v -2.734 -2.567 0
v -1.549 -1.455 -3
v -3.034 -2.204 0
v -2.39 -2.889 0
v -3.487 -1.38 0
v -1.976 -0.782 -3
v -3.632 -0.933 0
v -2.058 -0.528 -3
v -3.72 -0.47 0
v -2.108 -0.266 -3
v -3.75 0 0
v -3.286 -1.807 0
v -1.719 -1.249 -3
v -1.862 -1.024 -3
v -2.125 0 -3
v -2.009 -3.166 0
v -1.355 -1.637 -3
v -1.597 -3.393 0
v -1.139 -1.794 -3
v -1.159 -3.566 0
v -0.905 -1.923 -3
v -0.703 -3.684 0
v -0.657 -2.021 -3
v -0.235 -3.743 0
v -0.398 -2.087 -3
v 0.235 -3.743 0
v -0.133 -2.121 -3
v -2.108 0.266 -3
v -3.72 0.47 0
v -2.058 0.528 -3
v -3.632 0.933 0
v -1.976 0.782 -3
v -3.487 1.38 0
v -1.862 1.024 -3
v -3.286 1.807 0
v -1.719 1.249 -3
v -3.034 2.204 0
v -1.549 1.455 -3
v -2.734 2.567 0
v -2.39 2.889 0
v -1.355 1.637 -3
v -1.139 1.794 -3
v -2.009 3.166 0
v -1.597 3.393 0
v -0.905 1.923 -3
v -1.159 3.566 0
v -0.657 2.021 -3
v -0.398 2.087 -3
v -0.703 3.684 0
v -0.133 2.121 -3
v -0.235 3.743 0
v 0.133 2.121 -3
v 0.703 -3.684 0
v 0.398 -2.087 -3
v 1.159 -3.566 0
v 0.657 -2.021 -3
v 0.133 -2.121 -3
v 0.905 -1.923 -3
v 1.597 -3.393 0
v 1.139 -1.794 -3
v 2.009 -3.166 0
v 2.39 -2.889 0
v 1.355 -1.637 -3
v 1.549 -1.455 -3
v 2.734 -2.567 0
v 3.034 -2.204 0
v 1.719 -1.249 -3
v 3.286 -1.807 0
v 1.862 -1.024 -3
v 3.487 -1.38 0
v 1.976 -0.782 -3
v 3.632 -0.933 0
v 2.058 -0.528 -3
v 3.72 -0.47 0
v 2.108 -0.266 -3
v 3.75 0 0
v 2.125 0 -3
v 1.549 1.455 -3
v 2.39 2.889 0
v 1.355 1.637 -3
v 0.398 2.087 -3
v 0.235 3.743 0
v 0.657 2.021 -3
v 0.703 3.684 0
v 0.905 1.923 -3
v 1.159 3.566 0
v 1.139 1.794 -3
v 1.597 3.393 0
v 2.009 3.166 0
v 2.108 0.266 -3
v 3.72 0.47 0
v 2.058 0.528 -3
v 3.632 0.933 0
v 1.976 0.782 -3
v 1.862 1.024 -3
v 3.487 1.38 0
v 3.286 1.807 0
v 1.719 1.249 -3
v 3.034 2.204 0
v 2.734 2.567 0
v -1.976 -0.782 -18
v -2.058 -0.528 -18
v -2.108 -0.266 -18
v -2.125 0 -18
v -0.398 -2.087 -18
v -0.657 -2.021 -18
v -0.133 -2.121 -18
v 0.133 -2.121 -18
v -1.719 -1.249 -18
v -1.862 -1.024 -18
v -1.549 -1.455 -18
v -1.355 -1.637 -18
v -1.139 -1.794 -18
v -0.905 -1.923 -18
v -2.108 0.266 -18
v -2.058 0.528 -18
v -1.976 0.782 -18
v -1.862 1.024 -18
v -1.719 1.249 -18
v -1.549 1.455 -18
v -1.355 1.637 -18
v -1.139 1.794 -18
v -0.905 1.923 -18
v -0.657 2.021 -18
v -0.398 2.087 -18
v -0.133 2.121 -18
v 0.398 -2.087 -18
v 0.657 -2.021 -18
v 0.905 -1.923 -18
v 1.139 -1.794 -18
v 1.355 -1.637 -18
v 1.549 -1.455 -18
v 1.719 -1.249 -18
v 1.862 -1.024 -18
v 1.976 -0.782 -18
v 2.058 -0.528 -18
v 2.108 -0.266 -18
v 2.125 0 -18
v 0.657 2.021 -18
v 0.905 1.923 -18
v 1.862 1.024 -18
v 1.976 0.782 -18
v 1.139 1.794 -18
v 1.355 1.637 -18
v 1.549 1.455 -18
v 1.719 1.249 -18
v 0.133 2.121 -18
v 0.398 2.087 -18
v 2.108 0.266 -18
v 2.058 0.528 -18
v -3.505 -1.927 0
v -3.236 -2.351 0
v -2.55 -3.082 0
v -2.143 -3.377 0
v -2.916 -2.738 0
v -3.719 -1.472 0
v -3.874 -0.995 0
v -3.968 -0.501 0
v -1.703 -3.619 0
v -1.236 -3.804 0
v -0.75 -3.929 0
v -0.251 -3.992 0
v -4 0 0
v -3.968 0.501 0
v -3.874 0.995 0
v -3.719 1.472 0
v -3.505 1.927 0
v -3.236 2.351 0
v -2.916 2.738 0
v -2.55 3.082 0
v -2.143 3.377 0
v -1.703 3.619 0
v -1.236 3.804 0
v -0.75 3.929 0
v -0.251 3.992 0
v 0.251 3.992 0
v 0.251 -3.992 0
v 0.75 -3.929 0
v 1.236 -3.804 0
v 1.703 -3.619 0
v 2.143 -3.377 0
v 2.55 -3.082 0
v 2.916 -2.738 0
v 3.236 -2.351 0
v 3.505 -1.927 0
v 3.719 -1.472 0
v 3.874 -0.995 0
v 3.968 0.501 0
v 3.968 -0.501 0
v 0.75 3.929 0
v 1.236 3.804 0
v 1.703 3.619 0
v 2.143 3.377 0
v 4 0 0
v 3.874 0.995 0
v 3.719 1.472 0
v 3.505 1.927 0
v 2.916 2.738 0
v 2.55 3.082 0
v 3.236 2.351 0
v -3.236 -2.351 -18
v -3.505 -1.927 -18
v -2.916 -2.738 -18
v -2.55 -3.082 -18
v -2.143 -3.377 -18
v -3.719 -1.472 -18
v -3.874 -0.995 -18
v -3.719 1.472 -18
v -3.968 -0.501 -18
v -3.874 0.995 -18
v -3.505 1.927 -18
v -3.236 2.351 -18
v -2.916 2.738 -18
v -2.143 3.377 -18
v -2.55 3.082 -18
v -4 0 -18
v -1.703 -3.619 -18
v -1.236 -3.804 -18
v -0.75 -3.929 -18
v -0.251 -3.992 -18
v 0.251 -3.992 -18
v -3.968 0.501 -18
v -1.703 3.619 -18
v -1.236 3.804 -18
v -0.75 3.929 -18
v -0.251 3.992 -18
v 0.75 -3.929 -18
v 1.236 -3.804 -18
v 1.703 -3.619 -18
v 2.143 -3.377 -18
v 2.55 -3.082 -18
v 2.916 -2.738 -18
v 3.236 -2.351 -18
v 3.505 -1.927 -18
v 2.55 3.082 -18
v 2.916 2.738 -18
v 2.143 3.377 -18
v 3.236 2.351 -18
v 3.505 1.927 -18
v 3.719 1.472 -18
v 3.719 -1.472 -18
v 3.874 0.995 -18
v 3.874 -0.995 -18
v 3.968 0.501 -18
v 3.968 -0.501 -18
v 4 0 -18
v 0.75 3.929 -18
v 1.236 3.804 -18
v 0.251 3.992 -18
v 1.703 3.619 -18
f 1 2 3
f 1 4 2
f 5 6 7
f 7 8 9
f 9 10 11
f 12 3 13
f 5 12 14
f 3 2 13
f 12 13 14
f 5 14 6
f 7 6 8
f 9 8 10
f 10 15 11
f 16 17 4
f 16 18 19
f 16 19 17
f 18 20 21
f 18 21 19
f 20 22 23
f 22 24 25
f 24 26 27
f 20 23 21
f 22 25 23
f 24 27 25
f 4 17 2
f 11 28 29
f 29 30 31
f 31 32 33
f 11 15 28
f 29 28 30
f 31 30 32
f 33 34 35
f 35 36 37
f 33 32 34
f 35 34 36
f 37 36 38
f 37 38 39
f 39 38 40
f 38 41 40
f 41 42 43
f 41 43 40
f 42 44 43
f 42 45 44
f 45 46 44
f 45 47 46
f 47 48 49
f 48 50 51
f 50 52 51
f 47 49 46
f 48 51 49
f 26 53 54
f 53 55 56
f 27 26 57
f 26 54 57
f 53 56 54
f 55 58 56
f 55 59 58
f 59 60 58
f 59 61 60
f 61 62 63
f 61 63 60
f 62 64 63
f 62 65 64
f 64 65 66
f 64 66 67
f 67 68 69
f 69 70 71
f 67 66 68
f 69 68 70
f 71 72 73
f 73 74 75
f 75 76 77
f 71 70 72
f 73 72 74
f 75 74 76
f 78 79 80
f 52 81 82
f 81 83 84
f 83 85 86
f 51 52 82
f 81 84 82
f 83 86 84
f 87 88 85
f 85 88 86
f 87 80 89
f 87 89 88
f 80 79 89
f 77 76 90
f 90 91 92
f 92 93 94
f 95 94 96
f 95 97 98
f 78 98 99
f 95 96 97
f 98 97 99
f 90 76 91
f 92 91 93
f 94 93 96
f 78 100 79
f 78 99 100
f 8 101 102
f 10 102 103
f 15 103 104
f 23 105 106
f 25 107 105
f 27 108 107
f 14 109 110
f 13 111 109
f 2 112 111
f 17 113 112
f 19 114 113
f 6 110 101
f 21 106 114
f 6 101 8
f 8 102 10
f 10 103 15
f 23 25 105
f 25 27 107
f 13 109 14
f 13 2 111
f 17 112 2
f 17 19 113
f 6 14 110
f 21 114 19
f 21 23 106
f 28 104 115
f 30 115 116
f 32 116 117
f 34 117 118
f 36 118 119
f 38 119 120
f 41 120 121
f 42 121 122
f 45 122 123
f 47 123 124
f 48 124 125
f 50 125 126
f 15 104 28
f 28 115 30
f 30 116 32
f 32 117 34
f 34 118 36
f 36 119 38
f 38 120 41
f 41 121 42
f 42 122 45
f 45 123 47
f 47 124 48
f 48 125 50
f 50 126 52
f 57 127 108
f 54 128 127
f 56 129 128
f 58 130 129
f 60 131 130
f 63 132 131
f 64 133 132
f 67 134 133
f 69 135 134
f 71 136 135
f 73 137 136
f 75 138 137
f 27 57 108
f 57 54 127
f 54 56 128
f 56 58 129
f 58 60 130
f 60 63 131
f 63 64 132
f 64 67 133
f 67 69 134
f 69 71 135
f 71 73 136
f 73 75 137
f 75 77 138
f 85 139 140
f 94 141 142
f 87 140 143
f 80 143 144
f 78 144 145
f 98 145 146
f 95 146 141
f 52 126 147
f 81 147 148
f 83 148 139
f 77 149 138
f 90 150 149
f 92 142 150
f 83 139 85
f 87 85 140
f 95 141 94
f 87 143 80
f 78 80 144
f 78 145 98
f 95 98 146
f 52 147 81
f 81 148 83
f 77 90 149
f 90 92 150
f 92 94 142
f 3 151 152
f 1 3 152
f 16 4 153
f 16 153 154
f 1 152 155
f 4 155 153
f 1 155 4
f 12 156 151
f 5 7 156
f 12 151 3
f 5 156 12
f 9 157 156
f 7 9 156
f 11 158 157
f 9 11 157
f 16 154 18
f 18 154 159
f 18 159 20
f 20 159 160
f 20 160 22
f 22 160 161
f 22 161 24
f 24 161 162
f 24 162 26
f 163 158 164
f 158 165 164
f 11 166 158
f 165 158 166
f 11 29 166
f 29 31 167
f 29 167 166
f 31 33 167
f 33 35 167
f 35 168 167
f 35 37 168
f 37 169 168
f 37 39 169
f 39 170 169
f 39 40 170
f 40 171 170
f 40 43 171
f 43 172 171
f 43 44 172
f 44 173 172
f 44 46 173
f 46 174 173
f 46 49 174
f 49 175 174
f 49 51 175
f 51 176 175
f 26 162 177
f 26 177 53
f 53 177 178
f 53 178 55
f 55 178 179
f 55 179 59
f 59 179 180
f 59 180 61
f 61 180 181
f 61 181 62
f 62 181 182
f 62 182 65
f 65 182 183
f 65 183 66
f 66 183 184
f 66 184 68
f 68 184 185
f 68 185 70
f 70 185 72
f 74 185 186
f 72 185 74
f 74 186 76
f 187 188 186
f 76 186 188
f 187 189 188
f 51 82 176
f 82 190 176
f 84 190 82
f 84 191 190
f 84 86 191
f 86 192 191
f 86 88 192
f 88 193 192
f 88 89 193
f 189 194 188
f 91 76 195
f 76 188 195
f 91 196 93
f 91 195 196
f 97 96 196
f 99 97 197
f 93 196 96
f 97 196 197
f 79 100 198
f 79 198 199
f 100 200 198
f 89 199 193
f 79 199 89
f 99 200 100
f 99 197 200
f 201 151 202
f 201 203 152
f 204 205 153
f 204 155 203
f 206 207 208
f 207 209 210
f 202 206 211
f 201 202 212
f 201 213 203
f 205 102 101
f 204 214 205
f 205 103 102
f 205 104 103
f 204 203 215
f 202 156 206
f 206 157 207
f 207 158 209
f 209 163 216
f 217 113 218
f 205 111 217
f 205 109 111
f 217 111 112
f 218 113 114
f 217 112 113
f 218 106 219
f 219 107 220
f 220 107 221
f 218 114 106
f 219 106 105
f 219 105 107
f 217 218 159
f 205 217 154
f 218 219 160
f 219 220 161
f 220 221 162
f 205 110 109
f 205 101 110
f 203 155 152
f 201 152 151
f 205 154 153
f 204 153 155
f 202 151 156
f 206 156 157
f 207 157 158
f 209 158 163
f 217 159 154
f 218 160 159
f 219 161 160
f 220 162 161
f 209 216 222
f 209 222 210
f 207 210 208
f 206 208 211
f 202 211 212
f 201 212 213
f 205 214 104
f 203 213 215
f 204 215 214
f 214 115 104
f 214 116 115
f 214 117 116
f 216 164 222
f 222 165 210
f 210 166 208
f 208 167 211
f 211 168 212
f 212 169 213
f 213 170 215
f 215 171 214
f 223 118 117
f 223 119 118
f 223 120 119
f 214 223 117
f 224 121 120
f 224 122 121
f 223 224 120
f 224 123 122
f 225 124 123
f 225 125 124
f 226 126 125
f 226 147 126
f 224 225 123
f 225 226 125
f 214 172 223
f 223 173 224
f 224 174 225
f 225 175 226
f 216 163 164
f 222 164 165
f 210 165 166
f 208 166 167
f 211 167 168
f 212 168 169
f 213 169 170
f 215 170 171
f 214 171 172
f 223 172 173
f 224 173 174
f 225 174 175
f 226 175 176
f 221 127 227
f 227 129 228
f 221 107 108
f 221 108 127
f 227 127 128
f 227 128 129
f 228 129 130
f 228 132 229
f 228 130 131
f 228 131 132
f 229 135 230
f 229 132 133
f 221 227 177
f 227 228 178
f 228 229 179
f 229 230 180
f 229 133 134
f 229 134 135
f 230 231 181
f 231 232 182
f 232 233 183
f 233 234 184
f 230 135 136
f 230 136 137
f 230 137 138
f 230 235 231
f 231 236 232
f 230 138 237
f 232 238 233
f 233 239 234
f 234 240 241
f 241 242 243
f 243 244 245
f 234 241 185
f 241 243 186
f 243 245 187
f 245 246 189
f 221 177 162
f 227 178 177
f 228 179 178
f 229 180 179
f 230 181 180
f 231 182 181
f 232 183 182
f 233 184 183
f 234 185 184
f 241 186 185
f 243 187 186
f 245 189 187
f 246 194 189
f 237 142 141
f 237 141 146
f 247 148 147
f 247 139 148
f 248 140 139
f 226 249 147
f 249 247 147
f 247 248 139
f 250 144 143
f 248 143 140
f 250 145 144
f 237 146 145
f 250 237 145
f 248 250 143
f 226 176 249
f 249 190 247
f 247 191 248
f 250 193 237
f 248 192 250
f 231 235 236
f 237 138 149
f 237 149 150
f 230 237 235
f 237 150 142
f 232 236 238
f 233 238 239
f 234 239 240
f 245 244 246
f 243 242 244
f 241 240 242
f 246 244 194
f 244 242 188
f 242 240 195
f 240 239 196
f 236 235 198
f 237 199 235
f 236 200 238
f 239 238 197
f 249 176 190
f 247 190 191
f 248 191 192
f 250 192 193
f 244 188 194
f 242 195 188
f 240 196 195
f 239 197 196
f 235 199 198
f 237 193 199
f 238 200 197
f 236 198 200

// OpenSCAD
$fn = 50;

difference() {
	union() {
		translate(v = [0, 0, -18.0]) {
			cylinder(h = 21, r = 4.0);
		}
	}
	union() {
		translate(v = [0, 0, 0]) {
			rotate(a = [0, 0, 0]) {
				difference() {
					union() {
						translate(v = [0, 0, -21.0]) {
							cylinder(h = 21, r = 2.0);
						}
						translate(v = [0, 0, -3]) {
							cylinder(h = 3, r1 = 2.125, r2 = 3.75);
						}
						translate(v = [0, 0, -21.0]) {
							cylinder(h = 21, r = 2.125);
						}
						translate(v = [0, 0, -21.0]) {
							cylinder(h = 21, r = 2.0);
						}
					}
					union();
				}
			}
		}
		#cylinder(h = 3, r = 5.0);
	}
}
